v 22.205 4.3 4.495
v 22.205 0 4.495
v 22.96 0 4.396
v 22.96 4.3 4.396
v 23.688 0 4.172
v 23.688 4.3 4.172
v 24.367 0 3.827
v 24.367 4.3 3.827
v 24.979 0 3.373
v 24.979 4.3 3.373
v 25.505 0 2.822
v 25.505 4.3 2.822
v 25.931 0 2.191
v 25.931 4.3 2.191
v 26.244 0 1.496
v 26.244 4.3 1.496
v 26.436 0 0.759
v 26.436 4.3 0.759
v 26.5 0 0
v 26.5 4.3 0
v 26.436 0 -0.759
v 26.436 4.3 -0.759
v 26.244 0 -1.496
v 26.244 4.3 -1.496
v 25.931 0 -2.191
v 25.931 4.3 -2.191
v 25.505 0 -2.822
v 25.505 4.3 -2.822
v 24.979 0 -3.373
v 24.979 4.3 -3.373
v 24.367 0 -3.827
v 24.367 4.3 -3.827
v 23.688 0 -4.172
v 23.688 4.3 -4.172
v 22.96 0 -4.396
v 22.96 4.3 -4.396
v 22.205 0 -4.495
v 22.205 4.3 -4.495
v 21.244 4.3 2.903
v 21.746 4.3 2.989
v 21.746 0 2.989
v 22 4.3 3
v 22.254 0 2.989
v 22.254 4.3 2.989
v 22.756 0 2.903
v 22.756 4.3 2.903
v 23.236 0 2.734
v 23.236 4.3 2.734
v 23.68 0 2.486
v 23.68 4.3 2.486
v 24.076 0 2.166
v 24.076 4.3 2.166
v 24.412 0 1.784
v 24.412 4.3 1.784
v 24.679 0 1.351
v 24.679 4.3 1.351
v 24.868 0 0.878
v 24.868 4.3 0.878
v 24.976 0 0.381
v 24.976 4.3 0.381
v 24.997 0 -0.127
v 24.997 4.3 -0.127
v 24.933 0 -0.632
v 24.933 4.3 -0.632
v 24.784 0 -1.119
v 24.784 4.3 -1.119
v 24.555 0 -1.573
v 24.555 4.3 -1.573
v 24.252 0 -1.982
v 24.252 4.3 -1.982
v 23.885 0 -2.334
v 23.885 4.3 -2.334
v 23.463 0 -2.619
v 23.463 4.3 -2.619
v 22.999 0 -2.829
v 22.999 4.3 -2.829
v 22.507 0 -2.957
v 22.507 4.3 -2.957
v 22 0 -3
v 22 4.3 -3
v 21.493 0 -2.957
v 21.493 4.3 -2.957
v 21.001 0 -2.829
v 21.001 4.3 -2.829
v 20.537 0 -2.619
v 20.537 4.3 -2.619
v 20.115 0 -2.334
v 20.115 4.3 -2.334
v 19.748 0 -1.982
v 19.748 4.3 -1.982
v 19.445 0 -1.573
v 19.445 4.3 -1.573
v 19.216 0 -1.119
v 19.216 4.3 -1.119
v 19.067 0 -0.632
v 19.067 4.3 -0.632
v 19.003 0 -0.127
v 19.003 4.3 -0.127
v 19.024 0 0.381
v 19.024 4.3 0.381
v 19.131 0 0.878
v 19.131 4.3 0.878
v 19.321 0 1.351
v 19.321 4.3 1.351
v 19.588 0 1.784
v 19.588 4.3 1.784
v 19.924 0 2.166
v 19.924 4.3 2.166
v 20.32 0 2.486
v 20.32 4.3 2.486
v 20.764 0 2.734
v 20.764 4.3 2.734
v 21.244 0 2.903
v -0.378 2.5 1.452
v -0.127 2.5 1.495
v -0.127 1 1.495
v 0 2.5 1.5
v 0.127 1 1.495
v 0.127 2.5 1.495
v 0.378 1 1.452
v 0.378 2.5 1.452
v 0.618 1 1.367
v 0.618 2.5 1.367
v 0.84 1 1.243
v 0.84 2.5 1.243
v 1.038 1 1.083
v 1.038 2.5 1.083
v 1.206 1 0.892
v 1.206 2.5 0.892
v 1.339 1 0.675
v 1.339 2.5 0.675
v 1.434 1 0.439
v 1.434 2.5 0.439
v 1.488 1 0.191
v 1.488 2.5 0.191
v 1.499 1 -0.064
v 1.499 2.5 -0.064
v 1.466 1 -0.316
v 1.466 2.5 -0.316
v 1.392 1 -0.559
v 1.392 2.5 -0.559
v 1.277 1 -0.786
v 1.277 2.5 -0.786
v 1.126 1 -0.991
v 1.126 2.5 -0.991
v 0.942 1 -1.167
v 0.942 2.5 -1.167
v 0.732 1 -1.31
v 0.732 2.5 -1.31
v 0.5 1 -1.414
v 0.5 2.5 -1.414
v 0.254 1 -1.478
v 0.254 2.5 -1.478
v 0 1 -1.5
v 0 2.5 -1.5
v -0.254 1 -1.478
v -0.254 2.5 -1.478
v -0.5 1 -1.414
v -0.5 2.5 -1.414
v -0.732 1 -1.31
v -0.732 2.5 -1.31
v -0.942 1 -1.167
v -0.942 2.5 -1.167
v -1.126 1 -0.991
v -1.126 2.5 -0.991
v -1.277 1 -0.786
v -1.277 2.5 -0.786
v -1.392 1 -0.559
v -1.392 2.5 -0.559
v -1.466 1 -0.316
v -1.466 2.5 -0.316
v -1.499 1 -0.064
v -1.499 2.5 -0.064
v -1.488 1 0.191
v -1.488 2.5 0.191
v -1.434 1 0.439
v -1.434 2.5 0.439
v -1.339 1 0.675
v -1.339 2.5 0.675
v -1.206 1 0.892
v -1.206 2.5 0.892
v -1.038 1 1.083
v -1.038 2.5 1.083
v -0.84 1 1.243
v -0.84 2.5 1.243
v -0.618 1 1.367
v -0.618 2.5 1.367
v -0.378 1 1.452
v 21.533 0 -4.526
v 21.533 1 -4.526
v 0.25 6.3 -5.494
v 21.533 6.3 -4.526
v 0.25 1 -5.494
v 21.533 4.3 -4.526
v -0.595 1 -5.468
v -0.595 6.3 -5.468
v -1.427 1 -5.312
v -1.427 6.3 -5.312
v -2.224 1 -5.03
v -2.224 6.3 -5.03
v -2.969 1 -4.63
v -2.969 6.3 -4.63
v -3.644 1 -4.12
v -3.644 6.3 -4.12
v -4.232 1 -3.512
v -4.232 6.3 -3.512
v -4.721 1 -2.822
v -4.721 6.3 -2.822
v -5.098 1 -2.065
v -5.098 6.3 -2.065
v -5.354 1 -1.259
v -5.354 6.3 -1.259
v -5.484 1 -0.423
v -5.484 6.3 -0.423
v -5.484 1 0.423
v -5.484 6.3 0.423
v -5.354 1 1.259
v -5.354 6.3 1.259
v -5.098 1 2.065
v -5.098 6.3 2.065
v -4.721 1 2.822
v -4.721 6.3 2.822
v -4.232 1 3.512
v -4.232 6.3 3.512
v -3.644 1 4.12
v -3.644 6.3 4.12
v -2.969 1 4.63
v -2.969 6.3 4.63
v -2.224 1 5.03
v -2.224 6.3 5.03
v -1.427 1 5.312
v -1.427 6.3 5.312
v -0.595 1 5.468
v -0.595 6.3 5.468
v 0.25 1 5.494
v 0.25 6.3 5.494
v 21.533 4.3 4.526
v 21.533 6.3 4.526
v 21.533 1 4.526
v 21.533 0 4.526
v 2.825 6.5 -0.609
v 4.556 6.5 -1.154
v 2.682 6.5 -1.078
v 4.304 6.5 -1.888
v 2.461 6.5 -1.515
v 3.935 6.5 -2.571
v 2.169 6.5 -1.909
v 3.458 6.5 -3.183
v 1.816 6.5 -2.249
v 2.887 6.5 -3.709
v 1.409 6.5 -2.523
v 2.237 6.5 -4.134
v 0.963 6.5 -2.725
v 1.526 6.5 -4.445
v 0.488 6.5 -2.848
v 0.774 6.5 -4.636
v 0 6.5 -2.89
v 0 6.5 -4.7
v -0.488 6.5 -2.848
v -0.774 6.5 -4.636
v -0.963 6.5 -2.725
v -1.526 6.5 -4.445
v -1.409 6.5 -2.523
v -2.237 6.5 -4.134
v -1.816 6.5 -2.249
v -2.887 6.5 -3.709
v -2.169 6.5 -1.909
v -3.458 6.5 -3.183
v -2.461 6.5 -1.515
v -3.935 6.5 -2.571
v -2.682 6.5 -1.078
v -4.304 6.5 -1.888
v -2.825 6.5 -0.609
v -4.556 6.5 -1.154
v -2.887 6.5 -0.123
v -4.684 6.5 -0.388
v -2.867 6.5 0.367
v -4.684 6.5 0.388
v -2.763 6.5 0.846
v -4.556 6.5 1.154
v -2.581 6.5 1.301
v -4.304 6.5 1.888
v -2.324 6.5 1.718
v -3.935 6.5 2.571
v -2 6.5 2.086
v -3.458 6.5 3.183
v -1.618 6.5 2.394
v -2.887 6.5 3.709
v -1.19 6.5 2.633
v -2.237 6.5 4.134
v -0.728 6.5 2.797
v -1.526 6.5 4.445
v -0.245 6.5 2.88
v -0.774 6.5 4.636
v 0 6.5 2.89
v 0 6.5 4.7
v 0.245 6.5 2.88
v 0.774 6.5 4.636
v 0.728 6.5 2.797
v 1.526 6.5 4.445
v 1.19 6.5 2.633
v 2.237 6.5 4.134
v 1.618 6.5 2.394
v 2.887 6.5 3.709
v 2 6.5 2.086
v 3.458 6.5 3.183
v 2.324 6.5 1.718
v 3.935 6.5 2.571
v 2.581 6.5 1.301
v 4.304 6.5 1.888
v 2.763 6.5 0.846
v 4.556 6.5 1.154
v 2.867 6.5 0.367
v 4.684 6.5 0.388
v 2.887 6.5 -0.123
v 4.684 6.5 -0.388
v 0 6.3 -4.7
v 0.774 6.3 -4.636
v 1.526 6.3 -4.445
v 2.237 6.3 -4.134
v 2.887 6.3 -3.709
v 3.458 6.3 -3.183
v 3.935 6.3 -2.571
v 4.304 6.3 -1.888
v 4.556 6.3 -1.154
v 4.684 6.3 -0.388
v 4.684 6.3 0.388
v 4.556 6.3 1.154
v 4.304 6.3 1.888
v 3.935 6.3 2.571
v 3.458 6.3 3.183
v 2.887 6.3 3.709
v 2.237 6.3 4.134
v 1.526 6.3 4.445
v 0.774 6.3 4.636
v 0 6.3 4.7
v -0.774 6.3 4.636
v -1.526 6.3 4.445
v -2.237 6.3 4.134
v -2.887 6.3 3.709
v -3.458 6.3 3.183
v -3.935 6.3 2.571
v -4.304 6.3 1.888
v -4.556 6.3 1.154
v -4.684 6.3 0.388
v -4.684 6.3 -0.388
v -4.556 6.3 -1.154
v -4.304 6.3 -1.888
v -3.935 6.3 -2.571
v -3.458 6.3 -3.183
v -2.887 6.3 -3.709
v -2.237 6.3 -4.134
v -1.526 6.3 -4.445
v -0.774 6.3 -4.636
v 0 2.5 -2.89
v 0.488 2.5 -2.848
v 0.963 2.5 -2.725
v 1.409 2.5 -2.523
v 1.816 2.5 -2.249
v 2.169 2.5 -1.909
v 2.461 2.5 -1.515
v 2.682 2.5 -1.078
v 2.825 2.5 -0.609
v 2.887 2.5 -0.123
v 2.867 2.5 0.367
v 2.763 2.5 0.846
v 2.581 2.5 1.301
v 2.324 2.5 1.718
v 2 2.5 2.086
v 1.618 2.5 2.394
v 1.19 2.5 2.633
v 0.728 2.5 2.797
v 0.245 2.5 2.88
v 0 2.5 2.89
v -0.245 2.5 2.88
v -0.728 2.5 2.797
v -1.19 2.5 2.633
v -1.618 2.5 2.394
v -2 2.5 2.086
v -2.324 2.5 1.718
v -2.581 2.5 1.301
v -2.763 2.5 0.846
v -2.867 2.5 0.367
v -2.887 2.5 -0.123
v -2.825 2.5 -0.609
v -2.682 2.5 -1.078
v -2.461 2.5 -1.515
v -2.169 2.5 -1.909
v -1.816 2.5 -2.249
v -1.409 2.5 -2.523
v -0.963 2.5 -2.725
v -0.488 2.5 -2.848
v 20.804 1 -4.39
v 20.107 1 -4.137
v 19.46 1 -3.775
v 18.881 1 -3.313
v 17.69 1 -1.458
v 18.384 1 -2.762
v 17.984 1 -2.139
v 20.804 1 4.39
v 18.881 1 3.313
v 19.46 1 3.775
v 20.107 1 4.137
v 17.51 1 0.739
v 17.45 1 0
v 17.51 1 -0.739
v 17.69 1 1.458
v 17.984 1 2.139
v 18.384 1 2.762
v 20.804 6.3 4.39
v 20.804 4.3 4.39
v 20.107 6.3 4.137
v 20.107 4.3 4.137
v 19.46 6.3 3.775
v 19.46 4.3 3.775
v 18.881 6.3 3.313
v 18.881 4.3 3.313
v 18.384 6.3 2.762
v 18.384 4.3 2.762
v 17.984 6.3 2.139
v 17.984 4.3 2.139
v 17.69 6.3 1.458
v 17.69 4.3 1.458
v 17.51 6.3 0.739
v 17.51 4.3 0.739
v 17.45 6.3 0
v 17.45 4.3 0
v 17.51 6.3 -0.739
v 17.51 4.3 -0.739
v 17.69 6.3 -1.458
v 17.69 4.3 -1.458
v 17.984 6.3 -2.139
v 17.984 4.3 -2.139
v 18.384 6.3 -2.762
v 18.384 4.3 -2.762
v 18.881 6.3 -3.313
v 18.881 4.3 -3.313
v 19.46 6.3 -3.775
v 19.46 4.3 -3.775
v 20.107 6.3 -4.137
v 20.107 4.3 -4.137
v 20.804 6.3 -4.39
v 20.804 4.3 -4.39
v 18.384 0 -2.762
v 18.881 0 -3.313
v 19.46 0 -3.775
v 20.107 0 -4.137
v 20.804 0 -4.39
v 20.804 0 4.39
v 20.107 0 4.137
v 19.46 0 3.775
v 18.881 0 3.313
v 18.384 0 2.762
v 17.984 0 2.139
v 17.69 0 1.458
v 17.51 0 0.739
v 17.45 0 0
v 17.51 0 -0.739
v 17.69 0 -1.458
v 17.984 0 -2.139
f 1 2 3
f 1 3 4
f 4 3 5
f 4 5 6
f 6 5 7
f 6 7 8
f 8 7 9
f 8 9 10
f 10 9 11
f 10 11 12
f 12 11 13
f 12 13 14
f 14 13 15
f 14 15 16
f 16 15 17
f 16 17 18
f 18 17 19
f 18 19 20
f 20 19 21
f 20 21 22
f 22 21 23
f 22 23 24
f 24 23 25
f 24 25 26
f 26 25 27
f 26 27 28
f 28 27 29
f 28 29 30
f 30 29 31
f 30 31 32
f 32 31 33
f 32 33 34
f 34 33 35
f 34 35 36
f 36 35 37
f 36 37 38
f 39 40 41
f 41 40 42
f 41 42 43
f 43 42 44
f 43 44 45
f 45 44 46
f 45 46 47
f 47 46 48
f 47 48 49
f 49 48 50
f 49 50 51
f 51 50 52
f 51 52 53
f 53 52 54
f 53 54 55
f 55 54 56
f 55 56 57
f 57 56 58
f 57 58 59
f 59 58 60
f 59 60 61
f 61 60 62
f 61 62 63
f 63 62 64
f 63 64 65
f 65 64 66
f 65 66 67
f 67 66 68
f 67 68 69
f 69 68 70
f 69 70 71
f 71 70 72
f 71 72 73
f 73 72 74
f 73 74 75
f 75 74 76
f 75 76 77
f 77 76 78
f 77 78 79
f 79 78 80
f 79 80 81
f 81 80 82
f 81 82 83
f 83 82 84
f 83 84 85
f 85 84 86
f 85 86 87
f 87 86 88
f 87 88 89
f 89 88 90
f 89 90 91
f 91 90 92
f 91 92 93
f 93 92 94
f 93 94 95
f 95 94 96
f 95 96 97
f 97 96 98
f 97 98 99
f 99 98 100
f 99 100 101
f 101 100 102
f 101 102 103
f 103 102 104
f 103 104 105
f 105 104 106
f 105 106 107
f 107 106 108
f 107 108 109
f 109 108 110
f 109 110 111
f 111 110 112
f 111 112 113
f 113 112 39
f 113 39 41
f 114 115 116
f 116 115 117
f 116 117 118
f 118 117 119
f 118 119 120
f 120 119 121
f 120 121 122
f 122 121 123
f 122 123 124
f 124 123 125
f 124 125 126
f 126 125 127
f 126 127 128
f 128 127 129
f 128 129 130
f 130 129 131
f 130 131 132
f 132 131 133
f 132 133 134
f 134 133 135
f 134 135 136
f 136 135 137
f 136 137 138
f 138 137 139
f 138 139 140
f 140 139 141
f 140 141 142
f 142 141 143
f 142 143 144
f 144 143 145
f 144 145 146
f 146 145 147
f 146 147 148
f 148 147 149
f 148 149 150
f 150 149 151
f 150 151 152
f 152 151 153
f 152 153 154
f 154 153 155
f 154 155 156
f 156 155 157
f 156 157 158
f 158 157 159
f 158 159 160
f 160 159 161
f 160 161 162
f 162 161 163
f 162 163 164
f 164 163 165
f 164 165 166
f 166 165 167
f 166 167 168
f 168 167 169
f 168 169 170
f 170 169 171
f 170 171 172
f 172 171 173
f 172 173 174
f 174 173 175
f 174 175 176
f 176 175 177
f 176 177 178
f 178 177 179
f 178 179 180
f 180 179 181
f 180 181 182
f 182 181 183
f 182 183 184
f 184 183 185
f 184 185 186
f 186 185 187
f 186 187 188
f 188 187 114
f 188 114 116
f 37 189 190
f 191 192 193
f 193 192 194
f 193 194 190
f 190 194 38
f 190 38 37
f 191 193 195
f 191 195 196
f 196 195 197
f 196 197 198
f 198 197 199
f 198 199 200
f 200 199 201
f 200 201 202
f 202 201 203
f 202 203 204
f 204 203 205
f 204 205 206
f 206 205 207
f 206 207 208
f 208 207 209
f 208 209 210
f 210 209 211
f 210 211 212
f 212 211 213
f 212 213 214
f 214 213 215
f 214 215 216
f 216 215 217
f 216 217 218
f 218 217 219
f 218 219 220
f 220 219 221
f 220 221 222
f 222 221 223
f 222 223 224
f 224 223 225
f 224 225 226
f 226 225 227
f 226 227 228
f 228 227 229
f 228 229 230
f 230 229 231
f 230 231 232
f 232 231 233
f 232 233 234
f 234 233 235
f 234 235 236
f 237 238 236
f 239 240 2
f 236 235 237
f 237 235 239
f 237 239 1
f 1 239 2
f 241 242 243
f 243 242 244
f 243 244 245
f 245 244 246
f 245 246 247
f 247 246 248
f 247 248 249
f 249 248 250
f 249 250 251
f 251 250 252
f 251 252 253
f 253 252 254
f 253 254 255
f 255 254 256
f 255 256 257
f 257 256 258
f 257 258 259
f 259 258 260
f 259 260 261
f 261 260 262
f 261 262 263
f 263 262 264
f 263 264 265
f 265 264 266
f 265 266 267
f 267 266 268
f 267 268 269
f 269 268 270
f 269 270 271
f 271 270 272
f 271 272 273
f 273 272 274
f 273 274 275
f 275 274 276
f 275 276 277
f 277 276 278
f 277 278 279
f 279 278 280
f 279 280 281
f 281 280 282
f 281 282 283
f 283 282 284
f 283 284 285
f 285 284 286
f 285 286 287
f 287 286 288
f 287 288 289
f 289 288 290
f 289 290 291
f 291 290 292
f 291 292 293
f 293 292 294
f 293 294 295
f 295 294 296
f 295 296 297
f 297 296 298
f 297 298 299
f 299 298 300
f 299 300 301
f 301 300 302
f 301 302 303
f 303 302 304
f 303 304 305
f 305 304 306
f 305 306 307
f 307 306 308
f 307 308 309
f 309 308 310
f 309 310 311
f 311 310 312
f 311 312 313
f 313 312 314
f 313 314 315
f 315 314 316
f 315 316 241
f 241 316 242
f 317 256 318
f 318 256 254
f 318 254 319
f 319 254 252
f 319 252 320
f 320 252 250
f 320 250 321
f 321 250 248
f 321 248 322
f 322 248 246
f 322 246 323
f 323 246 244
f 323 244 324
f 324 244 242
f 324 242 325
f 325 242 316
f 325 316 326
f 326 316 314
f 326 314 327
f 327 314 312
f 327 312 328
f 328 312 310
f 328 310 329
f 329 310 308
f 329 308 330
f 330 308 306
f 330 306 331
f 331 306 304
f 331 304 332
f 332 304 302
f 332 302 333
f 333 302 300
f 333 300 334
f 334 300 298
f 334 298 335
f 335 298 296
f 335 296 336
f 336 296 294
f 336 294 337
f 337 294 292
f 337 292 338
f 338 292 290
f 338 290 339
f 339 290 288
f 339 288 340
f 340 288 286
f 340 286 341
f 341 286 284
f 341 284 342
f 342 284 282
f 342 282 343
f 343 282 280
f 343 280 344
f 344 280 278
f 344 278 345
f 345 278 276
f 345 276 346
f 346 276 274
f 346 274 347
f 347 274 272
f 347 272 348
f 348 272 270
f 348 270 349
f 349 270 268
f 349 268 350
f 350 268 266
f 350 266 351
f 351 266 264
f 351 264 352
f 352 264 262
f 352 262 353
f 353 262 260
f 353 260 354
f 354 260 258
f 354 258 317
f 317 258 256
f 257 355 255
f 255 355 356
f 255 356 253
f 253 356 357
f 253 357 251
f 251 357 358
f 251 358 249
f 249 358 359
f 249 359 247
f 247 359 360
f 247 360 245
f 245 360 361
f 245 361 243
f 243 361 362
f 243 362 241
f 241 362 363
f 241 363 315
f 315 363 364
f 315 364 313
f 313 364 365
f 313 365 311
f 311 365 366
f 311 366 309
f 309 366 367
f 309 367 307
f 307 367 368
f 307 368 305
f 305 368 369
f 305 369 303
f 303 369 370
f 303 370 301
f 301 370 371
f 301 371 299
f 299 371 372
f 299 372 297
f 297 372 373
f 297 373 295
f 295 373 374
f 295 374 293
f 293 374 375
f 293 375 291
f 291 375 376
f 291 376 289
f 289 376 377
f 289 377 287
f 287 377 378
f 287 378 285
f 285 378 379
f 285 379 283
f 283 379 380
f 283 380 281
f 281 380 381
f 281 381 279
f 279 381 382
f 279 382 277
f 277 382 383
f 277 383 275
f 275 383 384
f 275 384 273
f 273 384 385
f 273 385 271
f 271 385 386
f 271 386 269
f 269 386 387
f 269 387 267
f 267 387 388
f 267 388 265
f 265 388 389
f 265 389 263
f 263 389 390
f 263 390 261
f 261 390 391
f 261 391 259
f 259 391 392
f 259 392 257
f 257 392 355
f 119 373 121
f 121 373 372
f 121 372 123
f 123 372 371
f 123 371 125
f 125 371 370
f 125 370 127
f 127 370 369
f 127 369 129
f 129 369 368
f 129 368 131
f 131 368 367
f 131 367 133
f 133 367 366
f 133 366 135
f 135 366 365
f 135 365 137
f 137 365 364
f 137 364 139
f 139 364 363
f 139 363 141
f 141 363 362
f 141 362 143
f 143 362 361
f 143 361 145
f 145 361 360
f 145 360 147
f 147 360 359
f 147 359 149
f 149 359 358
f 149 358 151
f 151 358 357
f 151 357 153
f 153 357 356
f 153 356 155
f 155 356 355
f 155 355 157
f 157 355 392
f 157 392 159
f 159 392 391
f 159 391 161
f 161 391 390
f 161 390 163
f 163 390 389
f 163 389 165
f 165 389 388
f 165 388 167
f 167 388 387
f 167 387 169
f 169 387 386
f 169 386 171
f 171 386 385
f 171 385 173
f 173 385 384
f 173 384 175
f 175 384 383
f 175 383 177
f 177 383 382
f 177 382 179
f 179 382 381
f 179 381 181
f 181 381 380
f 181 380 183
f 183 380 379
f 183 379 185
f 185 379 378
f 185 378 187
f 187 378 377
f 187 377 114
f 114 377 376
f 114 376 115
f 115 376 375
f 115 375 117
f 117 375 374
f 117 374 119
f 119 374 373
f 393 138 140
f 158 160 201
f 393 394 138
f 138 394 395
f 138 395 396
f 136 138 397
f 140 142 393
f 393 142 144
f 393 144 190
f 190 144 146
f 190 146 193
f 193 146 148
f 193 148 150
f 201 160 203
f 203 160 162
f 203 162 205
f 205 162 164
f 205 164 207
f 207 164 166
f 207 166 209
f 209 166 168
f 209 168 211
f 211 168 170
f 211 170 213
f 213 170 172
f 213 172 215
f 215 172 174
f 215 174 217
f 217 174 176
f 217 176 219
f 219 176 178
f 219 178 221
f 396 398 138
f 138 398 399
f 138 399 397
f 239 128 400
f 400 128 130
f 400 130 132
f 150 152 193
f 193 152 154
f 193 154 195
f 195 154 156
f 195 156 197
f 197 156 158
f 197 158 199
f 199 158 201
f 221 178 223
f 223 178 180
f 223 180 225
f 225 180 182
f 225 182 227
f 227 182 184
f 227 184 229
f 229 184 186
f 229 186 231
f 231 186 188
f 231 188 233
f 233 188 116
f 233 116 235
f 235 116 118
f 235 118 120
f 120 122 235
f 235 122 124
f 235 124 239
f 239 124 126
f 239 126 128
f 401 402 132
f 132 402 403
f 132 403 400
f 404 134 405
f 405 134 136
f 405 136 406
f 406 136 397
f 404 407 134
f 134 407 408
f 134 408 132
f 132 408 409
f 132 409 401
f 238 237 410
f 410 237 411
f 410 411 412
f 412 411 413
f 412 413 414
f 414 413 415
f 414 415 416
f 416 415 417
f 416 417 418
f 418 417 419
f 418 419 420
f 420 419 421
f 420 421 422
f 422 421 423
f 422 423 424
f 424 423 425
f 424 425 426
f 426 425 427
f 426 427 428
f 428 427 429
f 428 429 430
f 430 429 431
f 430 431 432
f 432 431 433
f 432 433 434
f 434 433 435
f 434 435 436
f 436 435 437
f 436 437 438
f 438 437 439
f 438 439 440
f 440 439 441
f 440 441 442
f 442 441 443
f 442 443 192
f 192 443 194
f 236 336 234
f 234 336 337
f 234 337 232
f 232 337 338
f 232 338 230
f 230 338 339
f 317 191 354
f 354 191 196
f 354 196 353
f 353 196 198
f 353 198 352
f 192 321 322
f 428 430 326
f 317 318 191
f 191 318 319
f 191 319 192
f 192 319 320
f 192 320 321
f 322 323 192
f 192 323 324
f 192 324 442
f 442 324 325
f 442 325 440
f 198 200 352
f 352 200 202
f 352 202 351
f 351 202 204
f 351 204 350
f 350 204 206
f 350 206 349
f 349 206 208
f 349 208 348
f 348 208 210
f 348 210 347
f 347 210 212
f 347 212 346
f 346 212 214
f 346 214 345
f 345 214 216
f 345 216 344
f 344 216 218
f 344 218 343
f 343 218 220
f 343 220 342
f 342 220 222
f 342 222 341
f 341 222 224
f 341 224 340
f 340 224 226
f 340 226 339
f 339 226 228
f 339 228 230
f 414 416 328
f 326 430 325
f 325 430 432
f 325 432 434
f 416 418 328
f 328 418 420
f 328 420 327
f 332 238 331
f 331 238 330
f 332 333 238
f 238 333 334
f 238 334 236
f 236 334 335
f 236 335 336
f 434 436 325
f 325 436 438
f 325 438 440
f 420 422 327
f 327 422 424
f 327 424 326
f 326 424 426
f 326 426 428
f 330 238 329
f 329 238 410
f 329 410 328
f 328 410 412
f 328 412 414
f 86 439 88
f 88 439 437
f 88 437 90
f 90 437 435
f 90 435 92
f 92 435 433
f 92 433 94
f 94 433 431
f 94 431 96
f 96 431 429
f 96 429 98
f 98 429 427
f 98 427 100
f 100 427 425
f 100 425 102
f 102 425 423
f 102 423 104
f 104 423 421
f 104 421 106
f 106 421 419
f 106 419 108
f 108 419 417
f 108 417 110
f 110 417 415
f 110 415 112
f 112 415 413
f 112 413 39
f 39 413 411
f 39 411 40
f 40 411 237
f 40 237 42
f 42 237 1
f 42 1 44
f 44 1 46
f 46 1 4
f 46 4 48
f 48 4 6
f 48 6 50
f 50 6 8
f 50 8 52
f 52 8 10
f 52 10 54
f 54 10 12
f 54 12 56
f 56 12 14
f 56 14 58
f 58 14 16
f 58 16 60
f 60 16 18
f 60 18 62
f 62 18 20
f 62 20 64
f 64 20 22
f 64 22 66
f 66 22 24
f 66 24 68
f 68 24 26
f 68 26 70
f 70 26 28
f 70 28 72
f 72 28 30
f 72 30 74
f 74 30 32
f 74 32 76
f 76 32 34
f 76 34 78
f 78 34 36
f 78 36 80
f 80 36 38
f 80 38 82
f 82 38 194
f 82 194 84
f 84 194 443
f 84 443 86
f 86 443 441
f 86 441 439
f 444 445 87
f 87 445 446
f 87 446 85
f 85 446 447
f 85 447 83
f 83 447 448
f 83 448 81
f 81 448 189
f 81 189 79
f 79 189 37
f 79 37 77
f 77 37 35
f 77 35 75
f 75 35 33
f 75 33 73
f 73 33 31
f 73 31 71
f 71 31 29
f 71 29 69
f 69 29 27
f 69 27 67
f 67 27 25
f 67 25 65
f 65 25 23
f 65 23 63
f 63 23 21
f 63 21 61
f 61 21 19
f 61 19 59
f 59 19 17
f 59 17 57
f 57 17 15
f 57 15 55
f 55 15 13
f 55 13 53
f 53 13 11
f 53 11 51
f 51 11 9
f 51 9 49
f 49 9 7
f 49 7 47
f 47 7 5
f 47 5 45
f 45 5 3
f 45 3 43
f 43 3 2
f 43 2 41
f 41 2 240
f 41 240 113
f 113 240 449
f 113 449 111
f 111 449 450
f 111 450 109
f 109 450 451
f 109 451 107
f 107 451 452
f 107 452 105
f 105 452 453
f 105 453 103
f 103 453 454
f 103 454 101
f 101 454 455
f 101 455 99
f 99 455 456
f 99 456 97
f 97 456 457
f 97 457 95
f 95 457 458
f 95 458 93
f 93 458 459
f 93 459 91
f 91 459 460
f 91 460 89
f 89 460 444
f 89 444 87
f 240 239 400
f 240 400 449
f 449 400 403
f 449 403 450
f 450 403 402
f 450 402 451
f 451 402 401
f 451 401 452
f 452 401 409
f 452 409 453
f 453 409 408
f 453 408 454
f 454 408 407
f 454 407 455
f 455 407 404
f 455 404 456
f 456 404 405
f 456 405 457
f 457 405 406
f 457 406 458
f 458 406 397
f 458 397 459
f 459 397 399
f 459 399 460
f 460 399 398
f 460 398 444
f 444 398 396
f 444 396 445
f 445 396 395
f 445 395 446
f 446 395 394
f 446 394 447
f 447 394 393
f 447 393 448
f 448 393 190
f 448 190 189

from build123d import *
from build123d.topology import SkipClean

# Parameters (mm, degrees)
SKETCH1_R               = 1.5
SKETCH1_R_2             = 3
BOSS_EXTRUDE1_DEPTH     = 3.5
SKETCH2_R               = 4.7
SKETCH2_R_2             = 2.89
BOSS_EXTRUDE2_DEPTH     = 3
CUT_EXTRUDE1_START      = -1
SKETCH3_R               = 2.89
CUT_EXTRUDE1_DEPTH      = 1
SKETCH4_R               = 3
SKETCH4_R_2             = 4.7
BOSS_EXTRUDE3_DEPTH     = 1.8
CUT_EXTRUDE2_DEPTH      = 1
BOSS_EXTRUDE4_OUTLINE_R = 4.7
BOSS_EXTRUDE4_DEPTH     = 1
CUT_EXTRUDE3_START      = -1
SKETCH7_R               = 3
CUT_EXTRUDE3_DEPTH      = 1
BOSS_EXTRUDE5_START     = -5.3
SKETCH7_2_R             = 3
BOSS_EXTRUDE5_DEPTH     = 1


# Read off the part's stored shape, not the designer's step: Boss-Extrude4
with BuildPart() as part:
    # Sketch1 → Boss-Extrude1 (new body)
    with BuildSketch(Plane(origin=(0, 0, 0), x_dir=(1, 0, 0), z_dir=(0, 1, 0))):
        with BuildLine():
            Line((0.25, 5.494315244), (22.204545455, 4.495348836))
            ThreePointArc((22.204545455, 4.495348836), (26.5, 0), (22.204545455, -4.495348836))
            Line((22.204545455, -4.495348836), (0.25, -5.494315244))
            ThreePointArc((0.25, -5.494315244), (-5.5, 0), (0.25, 5.494315244))
        make_face()
        with Locations(Location((0, 0, 0), (0, 0, 270))):
            Circle(SKETCH1_R, mode=Mode.SUBTRACT)
        with Locations(Location((22, 0, 0), (0, 0, 270))):
            Circle(SKETCH1_R_2, mode=Mode.SUBTRACT)
    extrude(amount=BOSS_EXTRUDE1_DEPTH)

    # Sketch2 → Boss-Extrude2 (add)
    with BuildSketch(Plane(origin=(0, 3.5, 0), x_dir=(1, 0, 0), z_dir=(0, 1, 0))):
        with Locations(Location((0, 0, 0), (0, 0, 90))):
            Circle(SKETCH2_R)
        with Locations(Location((0, 0, 0), (0, 0, 270))):
            Circle(SKETCH2_R_2, mode=Mode.SUBTRACT)
    extrude(amount=BOSS_EXTRUDE2_DEPTH)

    # Sketch3 → Cut-Extrude1 (cut)
    with BuildSketch(Plane(origin=(0, 3.5, 0), x_dir=(1, 0, 0), z_dir=(0, 1, 0)).offset(CUT_EXTRUDE1_START)):
        with Locations(Location((0, 0, 0), (0, 0, 270))):
            Circle(SKETCH3_R)
    extrude(amount=CUT_EXTRUDE1_DEPTH, mode=Mode.SUBTRACT)

    # Sketch4 → Boss-Extrude3 (add)
    with SkipClean():  # the faces are left unmerged after this step: merging them gives an invalid solid
        with BuildSketch(Plane(origin=(0, 3.5, 0), x_dir=(1, 0, 0), z_dir=(0, 1, 0))):
            with BuildLine():
                Line((0.25, -5.494315244), (22.204545455, -4.495348836))
                ThreePointArc((22.204545455, -4.495348836), (26.5, 0), (22.204545455, 4.495348836))
                Line((22.204545455, 4.495348836), (0.25, 5.494315244))
                ThreePointArc((0.25, 5.494315244), (-5.5, 0), (0.25, -5.494315244))
            make_face()
            with Locations(Location((22, 0, 0), (0, 0, 270))):
                Circle(SKETCH4_R, mode=Mode.SUBTRACT)
            with Locations(Location((0, 0, 0), (0, 0, 270))):
                Circle(SKETCH4_R_2, mode=Mode.SUBTRACT)
        extrude(amount=BOSS_EXTRUDE3_DEPTH)

    # Sketch5 → Cut-Extrude2 (cut)
    with SkipClean():  # the faces are left unmerged after this step: merging them gives an invalid solid
        with BuildSketch(Plane.XZ):
            with BuildLine():
                Line((22.204545455, 4.495348836), (0.25, 5.494315244))
                ThreePointArc((0.25, 5.494315244), (-5.5, 0), (0.25, -5.494315244))
                Line((0.25, -5.494315244), (22.204545455, -4.495348836))
                ThreePointArc((22.204545455, -4.495348836), (26.5, 0), (22.204545455, 4.495348836))
            make_face()
        extrude(amount=-CUT_EXTRUDE2_DEPTH, mode=Mode.SUBTRACT)

    # Boss-Extrude4 outline → Boss-Extrude4 (add)
    with SkipClean():  # the faces are left unmerged after this step: merging them gives an invalid solid
        with BuildSketch(Plane(origin=(0, 5.3, 0), x_dir=(1, 0, 0), z_dir=(0, 1, 0))):
            with BuildLine():
                ThreePointArc((21.53255953, -4.525925254), (17.45, 0), (21.53255953, 4.525925254))
                Line((21.53255953, 4.525925254), (0.25, 5.494315244))
                ThreePointArc((0.25, 5.494315244), (-5.5, 0), (0.25, -5.494315244))
                Line((0.25, -5.494315244), (21.53255953, -4.525925254))
            make_face()
            Circle(BOSS_EXTRUDE4_OUTLINE_R, mode=Mode.SUBTRACT)
        extrude(amount=BOSS_EXTRUDE4_DEPTH)

    # Sketch7 → Cut-Extrude3 (cut)
    with SkipClean():  # the faces are left unmerged after this step: merging them gives an invalid solid
        with BuildSketch(Plane(origin=(0, 5.3, 0), x_dir=(1, 0, 0), z_dir=(0, 1, 0)).offset(CUT_EXTRUDE3_START)):
            with BuildLine():
                Line((22.204545455, 4.495348836), (21.53255953, 4.525925254))
                ThreePointArc((21.53255953, 4.525925254), (17.45, 0), (21.53255953, -4.525925254))
                Line((21.53255953, -4.525925254), (22.204545455, -4.495348836))
                ThreePointArc((22.204545455, -4.495348836), (26.5, 0), (22.204545455, 4.495348836))
            make_face()
            with Locations(Location((22, 0, 0), (0, 0, 90))):
                Circle(SKETCH7_R, mode=Mode.SUBTRACT)
        extrude(amount=CUT_EXTRUDE3_DEPTH, mode=Mode.SUBTRACT)

    # Sketch7<2> → Boss-Extrude5 (add)
    with SkipClean():  # the faces are left unmerged after this step: merging them gives an invalid solid
        with BuildSketch(Plane(origin=(0, 5.3, 0), x_dir=(1, 0, 0), z_dir=(0, 1, 0)).offset(BOSS_EXTRUDE5_START)):
            with BuildLine():
                Line((22.204545455, 4.495348836), (21.53255953, 4.525925254))
                ThreePointArc((21.53255953, 4.525925254), (17.45, 0), (21.53255953, -4.525925254))
                Line((21.53255953, -4.525925254), (22.204545455, -4.495348836))
                ThreePointArc((22.204545455, -4.495348836), (26.5, 0), (22.204545455, 4.495348836))
            make_face()
            with Locations(Location((22, 0, 0), (0, 0, 90))):
                Circle(SKETCH7_2_R, mode=Mode.SUBTRACT)
        extrude(amount=BOSS_EXTRUDE5_DEPTH)


solid = part.part
